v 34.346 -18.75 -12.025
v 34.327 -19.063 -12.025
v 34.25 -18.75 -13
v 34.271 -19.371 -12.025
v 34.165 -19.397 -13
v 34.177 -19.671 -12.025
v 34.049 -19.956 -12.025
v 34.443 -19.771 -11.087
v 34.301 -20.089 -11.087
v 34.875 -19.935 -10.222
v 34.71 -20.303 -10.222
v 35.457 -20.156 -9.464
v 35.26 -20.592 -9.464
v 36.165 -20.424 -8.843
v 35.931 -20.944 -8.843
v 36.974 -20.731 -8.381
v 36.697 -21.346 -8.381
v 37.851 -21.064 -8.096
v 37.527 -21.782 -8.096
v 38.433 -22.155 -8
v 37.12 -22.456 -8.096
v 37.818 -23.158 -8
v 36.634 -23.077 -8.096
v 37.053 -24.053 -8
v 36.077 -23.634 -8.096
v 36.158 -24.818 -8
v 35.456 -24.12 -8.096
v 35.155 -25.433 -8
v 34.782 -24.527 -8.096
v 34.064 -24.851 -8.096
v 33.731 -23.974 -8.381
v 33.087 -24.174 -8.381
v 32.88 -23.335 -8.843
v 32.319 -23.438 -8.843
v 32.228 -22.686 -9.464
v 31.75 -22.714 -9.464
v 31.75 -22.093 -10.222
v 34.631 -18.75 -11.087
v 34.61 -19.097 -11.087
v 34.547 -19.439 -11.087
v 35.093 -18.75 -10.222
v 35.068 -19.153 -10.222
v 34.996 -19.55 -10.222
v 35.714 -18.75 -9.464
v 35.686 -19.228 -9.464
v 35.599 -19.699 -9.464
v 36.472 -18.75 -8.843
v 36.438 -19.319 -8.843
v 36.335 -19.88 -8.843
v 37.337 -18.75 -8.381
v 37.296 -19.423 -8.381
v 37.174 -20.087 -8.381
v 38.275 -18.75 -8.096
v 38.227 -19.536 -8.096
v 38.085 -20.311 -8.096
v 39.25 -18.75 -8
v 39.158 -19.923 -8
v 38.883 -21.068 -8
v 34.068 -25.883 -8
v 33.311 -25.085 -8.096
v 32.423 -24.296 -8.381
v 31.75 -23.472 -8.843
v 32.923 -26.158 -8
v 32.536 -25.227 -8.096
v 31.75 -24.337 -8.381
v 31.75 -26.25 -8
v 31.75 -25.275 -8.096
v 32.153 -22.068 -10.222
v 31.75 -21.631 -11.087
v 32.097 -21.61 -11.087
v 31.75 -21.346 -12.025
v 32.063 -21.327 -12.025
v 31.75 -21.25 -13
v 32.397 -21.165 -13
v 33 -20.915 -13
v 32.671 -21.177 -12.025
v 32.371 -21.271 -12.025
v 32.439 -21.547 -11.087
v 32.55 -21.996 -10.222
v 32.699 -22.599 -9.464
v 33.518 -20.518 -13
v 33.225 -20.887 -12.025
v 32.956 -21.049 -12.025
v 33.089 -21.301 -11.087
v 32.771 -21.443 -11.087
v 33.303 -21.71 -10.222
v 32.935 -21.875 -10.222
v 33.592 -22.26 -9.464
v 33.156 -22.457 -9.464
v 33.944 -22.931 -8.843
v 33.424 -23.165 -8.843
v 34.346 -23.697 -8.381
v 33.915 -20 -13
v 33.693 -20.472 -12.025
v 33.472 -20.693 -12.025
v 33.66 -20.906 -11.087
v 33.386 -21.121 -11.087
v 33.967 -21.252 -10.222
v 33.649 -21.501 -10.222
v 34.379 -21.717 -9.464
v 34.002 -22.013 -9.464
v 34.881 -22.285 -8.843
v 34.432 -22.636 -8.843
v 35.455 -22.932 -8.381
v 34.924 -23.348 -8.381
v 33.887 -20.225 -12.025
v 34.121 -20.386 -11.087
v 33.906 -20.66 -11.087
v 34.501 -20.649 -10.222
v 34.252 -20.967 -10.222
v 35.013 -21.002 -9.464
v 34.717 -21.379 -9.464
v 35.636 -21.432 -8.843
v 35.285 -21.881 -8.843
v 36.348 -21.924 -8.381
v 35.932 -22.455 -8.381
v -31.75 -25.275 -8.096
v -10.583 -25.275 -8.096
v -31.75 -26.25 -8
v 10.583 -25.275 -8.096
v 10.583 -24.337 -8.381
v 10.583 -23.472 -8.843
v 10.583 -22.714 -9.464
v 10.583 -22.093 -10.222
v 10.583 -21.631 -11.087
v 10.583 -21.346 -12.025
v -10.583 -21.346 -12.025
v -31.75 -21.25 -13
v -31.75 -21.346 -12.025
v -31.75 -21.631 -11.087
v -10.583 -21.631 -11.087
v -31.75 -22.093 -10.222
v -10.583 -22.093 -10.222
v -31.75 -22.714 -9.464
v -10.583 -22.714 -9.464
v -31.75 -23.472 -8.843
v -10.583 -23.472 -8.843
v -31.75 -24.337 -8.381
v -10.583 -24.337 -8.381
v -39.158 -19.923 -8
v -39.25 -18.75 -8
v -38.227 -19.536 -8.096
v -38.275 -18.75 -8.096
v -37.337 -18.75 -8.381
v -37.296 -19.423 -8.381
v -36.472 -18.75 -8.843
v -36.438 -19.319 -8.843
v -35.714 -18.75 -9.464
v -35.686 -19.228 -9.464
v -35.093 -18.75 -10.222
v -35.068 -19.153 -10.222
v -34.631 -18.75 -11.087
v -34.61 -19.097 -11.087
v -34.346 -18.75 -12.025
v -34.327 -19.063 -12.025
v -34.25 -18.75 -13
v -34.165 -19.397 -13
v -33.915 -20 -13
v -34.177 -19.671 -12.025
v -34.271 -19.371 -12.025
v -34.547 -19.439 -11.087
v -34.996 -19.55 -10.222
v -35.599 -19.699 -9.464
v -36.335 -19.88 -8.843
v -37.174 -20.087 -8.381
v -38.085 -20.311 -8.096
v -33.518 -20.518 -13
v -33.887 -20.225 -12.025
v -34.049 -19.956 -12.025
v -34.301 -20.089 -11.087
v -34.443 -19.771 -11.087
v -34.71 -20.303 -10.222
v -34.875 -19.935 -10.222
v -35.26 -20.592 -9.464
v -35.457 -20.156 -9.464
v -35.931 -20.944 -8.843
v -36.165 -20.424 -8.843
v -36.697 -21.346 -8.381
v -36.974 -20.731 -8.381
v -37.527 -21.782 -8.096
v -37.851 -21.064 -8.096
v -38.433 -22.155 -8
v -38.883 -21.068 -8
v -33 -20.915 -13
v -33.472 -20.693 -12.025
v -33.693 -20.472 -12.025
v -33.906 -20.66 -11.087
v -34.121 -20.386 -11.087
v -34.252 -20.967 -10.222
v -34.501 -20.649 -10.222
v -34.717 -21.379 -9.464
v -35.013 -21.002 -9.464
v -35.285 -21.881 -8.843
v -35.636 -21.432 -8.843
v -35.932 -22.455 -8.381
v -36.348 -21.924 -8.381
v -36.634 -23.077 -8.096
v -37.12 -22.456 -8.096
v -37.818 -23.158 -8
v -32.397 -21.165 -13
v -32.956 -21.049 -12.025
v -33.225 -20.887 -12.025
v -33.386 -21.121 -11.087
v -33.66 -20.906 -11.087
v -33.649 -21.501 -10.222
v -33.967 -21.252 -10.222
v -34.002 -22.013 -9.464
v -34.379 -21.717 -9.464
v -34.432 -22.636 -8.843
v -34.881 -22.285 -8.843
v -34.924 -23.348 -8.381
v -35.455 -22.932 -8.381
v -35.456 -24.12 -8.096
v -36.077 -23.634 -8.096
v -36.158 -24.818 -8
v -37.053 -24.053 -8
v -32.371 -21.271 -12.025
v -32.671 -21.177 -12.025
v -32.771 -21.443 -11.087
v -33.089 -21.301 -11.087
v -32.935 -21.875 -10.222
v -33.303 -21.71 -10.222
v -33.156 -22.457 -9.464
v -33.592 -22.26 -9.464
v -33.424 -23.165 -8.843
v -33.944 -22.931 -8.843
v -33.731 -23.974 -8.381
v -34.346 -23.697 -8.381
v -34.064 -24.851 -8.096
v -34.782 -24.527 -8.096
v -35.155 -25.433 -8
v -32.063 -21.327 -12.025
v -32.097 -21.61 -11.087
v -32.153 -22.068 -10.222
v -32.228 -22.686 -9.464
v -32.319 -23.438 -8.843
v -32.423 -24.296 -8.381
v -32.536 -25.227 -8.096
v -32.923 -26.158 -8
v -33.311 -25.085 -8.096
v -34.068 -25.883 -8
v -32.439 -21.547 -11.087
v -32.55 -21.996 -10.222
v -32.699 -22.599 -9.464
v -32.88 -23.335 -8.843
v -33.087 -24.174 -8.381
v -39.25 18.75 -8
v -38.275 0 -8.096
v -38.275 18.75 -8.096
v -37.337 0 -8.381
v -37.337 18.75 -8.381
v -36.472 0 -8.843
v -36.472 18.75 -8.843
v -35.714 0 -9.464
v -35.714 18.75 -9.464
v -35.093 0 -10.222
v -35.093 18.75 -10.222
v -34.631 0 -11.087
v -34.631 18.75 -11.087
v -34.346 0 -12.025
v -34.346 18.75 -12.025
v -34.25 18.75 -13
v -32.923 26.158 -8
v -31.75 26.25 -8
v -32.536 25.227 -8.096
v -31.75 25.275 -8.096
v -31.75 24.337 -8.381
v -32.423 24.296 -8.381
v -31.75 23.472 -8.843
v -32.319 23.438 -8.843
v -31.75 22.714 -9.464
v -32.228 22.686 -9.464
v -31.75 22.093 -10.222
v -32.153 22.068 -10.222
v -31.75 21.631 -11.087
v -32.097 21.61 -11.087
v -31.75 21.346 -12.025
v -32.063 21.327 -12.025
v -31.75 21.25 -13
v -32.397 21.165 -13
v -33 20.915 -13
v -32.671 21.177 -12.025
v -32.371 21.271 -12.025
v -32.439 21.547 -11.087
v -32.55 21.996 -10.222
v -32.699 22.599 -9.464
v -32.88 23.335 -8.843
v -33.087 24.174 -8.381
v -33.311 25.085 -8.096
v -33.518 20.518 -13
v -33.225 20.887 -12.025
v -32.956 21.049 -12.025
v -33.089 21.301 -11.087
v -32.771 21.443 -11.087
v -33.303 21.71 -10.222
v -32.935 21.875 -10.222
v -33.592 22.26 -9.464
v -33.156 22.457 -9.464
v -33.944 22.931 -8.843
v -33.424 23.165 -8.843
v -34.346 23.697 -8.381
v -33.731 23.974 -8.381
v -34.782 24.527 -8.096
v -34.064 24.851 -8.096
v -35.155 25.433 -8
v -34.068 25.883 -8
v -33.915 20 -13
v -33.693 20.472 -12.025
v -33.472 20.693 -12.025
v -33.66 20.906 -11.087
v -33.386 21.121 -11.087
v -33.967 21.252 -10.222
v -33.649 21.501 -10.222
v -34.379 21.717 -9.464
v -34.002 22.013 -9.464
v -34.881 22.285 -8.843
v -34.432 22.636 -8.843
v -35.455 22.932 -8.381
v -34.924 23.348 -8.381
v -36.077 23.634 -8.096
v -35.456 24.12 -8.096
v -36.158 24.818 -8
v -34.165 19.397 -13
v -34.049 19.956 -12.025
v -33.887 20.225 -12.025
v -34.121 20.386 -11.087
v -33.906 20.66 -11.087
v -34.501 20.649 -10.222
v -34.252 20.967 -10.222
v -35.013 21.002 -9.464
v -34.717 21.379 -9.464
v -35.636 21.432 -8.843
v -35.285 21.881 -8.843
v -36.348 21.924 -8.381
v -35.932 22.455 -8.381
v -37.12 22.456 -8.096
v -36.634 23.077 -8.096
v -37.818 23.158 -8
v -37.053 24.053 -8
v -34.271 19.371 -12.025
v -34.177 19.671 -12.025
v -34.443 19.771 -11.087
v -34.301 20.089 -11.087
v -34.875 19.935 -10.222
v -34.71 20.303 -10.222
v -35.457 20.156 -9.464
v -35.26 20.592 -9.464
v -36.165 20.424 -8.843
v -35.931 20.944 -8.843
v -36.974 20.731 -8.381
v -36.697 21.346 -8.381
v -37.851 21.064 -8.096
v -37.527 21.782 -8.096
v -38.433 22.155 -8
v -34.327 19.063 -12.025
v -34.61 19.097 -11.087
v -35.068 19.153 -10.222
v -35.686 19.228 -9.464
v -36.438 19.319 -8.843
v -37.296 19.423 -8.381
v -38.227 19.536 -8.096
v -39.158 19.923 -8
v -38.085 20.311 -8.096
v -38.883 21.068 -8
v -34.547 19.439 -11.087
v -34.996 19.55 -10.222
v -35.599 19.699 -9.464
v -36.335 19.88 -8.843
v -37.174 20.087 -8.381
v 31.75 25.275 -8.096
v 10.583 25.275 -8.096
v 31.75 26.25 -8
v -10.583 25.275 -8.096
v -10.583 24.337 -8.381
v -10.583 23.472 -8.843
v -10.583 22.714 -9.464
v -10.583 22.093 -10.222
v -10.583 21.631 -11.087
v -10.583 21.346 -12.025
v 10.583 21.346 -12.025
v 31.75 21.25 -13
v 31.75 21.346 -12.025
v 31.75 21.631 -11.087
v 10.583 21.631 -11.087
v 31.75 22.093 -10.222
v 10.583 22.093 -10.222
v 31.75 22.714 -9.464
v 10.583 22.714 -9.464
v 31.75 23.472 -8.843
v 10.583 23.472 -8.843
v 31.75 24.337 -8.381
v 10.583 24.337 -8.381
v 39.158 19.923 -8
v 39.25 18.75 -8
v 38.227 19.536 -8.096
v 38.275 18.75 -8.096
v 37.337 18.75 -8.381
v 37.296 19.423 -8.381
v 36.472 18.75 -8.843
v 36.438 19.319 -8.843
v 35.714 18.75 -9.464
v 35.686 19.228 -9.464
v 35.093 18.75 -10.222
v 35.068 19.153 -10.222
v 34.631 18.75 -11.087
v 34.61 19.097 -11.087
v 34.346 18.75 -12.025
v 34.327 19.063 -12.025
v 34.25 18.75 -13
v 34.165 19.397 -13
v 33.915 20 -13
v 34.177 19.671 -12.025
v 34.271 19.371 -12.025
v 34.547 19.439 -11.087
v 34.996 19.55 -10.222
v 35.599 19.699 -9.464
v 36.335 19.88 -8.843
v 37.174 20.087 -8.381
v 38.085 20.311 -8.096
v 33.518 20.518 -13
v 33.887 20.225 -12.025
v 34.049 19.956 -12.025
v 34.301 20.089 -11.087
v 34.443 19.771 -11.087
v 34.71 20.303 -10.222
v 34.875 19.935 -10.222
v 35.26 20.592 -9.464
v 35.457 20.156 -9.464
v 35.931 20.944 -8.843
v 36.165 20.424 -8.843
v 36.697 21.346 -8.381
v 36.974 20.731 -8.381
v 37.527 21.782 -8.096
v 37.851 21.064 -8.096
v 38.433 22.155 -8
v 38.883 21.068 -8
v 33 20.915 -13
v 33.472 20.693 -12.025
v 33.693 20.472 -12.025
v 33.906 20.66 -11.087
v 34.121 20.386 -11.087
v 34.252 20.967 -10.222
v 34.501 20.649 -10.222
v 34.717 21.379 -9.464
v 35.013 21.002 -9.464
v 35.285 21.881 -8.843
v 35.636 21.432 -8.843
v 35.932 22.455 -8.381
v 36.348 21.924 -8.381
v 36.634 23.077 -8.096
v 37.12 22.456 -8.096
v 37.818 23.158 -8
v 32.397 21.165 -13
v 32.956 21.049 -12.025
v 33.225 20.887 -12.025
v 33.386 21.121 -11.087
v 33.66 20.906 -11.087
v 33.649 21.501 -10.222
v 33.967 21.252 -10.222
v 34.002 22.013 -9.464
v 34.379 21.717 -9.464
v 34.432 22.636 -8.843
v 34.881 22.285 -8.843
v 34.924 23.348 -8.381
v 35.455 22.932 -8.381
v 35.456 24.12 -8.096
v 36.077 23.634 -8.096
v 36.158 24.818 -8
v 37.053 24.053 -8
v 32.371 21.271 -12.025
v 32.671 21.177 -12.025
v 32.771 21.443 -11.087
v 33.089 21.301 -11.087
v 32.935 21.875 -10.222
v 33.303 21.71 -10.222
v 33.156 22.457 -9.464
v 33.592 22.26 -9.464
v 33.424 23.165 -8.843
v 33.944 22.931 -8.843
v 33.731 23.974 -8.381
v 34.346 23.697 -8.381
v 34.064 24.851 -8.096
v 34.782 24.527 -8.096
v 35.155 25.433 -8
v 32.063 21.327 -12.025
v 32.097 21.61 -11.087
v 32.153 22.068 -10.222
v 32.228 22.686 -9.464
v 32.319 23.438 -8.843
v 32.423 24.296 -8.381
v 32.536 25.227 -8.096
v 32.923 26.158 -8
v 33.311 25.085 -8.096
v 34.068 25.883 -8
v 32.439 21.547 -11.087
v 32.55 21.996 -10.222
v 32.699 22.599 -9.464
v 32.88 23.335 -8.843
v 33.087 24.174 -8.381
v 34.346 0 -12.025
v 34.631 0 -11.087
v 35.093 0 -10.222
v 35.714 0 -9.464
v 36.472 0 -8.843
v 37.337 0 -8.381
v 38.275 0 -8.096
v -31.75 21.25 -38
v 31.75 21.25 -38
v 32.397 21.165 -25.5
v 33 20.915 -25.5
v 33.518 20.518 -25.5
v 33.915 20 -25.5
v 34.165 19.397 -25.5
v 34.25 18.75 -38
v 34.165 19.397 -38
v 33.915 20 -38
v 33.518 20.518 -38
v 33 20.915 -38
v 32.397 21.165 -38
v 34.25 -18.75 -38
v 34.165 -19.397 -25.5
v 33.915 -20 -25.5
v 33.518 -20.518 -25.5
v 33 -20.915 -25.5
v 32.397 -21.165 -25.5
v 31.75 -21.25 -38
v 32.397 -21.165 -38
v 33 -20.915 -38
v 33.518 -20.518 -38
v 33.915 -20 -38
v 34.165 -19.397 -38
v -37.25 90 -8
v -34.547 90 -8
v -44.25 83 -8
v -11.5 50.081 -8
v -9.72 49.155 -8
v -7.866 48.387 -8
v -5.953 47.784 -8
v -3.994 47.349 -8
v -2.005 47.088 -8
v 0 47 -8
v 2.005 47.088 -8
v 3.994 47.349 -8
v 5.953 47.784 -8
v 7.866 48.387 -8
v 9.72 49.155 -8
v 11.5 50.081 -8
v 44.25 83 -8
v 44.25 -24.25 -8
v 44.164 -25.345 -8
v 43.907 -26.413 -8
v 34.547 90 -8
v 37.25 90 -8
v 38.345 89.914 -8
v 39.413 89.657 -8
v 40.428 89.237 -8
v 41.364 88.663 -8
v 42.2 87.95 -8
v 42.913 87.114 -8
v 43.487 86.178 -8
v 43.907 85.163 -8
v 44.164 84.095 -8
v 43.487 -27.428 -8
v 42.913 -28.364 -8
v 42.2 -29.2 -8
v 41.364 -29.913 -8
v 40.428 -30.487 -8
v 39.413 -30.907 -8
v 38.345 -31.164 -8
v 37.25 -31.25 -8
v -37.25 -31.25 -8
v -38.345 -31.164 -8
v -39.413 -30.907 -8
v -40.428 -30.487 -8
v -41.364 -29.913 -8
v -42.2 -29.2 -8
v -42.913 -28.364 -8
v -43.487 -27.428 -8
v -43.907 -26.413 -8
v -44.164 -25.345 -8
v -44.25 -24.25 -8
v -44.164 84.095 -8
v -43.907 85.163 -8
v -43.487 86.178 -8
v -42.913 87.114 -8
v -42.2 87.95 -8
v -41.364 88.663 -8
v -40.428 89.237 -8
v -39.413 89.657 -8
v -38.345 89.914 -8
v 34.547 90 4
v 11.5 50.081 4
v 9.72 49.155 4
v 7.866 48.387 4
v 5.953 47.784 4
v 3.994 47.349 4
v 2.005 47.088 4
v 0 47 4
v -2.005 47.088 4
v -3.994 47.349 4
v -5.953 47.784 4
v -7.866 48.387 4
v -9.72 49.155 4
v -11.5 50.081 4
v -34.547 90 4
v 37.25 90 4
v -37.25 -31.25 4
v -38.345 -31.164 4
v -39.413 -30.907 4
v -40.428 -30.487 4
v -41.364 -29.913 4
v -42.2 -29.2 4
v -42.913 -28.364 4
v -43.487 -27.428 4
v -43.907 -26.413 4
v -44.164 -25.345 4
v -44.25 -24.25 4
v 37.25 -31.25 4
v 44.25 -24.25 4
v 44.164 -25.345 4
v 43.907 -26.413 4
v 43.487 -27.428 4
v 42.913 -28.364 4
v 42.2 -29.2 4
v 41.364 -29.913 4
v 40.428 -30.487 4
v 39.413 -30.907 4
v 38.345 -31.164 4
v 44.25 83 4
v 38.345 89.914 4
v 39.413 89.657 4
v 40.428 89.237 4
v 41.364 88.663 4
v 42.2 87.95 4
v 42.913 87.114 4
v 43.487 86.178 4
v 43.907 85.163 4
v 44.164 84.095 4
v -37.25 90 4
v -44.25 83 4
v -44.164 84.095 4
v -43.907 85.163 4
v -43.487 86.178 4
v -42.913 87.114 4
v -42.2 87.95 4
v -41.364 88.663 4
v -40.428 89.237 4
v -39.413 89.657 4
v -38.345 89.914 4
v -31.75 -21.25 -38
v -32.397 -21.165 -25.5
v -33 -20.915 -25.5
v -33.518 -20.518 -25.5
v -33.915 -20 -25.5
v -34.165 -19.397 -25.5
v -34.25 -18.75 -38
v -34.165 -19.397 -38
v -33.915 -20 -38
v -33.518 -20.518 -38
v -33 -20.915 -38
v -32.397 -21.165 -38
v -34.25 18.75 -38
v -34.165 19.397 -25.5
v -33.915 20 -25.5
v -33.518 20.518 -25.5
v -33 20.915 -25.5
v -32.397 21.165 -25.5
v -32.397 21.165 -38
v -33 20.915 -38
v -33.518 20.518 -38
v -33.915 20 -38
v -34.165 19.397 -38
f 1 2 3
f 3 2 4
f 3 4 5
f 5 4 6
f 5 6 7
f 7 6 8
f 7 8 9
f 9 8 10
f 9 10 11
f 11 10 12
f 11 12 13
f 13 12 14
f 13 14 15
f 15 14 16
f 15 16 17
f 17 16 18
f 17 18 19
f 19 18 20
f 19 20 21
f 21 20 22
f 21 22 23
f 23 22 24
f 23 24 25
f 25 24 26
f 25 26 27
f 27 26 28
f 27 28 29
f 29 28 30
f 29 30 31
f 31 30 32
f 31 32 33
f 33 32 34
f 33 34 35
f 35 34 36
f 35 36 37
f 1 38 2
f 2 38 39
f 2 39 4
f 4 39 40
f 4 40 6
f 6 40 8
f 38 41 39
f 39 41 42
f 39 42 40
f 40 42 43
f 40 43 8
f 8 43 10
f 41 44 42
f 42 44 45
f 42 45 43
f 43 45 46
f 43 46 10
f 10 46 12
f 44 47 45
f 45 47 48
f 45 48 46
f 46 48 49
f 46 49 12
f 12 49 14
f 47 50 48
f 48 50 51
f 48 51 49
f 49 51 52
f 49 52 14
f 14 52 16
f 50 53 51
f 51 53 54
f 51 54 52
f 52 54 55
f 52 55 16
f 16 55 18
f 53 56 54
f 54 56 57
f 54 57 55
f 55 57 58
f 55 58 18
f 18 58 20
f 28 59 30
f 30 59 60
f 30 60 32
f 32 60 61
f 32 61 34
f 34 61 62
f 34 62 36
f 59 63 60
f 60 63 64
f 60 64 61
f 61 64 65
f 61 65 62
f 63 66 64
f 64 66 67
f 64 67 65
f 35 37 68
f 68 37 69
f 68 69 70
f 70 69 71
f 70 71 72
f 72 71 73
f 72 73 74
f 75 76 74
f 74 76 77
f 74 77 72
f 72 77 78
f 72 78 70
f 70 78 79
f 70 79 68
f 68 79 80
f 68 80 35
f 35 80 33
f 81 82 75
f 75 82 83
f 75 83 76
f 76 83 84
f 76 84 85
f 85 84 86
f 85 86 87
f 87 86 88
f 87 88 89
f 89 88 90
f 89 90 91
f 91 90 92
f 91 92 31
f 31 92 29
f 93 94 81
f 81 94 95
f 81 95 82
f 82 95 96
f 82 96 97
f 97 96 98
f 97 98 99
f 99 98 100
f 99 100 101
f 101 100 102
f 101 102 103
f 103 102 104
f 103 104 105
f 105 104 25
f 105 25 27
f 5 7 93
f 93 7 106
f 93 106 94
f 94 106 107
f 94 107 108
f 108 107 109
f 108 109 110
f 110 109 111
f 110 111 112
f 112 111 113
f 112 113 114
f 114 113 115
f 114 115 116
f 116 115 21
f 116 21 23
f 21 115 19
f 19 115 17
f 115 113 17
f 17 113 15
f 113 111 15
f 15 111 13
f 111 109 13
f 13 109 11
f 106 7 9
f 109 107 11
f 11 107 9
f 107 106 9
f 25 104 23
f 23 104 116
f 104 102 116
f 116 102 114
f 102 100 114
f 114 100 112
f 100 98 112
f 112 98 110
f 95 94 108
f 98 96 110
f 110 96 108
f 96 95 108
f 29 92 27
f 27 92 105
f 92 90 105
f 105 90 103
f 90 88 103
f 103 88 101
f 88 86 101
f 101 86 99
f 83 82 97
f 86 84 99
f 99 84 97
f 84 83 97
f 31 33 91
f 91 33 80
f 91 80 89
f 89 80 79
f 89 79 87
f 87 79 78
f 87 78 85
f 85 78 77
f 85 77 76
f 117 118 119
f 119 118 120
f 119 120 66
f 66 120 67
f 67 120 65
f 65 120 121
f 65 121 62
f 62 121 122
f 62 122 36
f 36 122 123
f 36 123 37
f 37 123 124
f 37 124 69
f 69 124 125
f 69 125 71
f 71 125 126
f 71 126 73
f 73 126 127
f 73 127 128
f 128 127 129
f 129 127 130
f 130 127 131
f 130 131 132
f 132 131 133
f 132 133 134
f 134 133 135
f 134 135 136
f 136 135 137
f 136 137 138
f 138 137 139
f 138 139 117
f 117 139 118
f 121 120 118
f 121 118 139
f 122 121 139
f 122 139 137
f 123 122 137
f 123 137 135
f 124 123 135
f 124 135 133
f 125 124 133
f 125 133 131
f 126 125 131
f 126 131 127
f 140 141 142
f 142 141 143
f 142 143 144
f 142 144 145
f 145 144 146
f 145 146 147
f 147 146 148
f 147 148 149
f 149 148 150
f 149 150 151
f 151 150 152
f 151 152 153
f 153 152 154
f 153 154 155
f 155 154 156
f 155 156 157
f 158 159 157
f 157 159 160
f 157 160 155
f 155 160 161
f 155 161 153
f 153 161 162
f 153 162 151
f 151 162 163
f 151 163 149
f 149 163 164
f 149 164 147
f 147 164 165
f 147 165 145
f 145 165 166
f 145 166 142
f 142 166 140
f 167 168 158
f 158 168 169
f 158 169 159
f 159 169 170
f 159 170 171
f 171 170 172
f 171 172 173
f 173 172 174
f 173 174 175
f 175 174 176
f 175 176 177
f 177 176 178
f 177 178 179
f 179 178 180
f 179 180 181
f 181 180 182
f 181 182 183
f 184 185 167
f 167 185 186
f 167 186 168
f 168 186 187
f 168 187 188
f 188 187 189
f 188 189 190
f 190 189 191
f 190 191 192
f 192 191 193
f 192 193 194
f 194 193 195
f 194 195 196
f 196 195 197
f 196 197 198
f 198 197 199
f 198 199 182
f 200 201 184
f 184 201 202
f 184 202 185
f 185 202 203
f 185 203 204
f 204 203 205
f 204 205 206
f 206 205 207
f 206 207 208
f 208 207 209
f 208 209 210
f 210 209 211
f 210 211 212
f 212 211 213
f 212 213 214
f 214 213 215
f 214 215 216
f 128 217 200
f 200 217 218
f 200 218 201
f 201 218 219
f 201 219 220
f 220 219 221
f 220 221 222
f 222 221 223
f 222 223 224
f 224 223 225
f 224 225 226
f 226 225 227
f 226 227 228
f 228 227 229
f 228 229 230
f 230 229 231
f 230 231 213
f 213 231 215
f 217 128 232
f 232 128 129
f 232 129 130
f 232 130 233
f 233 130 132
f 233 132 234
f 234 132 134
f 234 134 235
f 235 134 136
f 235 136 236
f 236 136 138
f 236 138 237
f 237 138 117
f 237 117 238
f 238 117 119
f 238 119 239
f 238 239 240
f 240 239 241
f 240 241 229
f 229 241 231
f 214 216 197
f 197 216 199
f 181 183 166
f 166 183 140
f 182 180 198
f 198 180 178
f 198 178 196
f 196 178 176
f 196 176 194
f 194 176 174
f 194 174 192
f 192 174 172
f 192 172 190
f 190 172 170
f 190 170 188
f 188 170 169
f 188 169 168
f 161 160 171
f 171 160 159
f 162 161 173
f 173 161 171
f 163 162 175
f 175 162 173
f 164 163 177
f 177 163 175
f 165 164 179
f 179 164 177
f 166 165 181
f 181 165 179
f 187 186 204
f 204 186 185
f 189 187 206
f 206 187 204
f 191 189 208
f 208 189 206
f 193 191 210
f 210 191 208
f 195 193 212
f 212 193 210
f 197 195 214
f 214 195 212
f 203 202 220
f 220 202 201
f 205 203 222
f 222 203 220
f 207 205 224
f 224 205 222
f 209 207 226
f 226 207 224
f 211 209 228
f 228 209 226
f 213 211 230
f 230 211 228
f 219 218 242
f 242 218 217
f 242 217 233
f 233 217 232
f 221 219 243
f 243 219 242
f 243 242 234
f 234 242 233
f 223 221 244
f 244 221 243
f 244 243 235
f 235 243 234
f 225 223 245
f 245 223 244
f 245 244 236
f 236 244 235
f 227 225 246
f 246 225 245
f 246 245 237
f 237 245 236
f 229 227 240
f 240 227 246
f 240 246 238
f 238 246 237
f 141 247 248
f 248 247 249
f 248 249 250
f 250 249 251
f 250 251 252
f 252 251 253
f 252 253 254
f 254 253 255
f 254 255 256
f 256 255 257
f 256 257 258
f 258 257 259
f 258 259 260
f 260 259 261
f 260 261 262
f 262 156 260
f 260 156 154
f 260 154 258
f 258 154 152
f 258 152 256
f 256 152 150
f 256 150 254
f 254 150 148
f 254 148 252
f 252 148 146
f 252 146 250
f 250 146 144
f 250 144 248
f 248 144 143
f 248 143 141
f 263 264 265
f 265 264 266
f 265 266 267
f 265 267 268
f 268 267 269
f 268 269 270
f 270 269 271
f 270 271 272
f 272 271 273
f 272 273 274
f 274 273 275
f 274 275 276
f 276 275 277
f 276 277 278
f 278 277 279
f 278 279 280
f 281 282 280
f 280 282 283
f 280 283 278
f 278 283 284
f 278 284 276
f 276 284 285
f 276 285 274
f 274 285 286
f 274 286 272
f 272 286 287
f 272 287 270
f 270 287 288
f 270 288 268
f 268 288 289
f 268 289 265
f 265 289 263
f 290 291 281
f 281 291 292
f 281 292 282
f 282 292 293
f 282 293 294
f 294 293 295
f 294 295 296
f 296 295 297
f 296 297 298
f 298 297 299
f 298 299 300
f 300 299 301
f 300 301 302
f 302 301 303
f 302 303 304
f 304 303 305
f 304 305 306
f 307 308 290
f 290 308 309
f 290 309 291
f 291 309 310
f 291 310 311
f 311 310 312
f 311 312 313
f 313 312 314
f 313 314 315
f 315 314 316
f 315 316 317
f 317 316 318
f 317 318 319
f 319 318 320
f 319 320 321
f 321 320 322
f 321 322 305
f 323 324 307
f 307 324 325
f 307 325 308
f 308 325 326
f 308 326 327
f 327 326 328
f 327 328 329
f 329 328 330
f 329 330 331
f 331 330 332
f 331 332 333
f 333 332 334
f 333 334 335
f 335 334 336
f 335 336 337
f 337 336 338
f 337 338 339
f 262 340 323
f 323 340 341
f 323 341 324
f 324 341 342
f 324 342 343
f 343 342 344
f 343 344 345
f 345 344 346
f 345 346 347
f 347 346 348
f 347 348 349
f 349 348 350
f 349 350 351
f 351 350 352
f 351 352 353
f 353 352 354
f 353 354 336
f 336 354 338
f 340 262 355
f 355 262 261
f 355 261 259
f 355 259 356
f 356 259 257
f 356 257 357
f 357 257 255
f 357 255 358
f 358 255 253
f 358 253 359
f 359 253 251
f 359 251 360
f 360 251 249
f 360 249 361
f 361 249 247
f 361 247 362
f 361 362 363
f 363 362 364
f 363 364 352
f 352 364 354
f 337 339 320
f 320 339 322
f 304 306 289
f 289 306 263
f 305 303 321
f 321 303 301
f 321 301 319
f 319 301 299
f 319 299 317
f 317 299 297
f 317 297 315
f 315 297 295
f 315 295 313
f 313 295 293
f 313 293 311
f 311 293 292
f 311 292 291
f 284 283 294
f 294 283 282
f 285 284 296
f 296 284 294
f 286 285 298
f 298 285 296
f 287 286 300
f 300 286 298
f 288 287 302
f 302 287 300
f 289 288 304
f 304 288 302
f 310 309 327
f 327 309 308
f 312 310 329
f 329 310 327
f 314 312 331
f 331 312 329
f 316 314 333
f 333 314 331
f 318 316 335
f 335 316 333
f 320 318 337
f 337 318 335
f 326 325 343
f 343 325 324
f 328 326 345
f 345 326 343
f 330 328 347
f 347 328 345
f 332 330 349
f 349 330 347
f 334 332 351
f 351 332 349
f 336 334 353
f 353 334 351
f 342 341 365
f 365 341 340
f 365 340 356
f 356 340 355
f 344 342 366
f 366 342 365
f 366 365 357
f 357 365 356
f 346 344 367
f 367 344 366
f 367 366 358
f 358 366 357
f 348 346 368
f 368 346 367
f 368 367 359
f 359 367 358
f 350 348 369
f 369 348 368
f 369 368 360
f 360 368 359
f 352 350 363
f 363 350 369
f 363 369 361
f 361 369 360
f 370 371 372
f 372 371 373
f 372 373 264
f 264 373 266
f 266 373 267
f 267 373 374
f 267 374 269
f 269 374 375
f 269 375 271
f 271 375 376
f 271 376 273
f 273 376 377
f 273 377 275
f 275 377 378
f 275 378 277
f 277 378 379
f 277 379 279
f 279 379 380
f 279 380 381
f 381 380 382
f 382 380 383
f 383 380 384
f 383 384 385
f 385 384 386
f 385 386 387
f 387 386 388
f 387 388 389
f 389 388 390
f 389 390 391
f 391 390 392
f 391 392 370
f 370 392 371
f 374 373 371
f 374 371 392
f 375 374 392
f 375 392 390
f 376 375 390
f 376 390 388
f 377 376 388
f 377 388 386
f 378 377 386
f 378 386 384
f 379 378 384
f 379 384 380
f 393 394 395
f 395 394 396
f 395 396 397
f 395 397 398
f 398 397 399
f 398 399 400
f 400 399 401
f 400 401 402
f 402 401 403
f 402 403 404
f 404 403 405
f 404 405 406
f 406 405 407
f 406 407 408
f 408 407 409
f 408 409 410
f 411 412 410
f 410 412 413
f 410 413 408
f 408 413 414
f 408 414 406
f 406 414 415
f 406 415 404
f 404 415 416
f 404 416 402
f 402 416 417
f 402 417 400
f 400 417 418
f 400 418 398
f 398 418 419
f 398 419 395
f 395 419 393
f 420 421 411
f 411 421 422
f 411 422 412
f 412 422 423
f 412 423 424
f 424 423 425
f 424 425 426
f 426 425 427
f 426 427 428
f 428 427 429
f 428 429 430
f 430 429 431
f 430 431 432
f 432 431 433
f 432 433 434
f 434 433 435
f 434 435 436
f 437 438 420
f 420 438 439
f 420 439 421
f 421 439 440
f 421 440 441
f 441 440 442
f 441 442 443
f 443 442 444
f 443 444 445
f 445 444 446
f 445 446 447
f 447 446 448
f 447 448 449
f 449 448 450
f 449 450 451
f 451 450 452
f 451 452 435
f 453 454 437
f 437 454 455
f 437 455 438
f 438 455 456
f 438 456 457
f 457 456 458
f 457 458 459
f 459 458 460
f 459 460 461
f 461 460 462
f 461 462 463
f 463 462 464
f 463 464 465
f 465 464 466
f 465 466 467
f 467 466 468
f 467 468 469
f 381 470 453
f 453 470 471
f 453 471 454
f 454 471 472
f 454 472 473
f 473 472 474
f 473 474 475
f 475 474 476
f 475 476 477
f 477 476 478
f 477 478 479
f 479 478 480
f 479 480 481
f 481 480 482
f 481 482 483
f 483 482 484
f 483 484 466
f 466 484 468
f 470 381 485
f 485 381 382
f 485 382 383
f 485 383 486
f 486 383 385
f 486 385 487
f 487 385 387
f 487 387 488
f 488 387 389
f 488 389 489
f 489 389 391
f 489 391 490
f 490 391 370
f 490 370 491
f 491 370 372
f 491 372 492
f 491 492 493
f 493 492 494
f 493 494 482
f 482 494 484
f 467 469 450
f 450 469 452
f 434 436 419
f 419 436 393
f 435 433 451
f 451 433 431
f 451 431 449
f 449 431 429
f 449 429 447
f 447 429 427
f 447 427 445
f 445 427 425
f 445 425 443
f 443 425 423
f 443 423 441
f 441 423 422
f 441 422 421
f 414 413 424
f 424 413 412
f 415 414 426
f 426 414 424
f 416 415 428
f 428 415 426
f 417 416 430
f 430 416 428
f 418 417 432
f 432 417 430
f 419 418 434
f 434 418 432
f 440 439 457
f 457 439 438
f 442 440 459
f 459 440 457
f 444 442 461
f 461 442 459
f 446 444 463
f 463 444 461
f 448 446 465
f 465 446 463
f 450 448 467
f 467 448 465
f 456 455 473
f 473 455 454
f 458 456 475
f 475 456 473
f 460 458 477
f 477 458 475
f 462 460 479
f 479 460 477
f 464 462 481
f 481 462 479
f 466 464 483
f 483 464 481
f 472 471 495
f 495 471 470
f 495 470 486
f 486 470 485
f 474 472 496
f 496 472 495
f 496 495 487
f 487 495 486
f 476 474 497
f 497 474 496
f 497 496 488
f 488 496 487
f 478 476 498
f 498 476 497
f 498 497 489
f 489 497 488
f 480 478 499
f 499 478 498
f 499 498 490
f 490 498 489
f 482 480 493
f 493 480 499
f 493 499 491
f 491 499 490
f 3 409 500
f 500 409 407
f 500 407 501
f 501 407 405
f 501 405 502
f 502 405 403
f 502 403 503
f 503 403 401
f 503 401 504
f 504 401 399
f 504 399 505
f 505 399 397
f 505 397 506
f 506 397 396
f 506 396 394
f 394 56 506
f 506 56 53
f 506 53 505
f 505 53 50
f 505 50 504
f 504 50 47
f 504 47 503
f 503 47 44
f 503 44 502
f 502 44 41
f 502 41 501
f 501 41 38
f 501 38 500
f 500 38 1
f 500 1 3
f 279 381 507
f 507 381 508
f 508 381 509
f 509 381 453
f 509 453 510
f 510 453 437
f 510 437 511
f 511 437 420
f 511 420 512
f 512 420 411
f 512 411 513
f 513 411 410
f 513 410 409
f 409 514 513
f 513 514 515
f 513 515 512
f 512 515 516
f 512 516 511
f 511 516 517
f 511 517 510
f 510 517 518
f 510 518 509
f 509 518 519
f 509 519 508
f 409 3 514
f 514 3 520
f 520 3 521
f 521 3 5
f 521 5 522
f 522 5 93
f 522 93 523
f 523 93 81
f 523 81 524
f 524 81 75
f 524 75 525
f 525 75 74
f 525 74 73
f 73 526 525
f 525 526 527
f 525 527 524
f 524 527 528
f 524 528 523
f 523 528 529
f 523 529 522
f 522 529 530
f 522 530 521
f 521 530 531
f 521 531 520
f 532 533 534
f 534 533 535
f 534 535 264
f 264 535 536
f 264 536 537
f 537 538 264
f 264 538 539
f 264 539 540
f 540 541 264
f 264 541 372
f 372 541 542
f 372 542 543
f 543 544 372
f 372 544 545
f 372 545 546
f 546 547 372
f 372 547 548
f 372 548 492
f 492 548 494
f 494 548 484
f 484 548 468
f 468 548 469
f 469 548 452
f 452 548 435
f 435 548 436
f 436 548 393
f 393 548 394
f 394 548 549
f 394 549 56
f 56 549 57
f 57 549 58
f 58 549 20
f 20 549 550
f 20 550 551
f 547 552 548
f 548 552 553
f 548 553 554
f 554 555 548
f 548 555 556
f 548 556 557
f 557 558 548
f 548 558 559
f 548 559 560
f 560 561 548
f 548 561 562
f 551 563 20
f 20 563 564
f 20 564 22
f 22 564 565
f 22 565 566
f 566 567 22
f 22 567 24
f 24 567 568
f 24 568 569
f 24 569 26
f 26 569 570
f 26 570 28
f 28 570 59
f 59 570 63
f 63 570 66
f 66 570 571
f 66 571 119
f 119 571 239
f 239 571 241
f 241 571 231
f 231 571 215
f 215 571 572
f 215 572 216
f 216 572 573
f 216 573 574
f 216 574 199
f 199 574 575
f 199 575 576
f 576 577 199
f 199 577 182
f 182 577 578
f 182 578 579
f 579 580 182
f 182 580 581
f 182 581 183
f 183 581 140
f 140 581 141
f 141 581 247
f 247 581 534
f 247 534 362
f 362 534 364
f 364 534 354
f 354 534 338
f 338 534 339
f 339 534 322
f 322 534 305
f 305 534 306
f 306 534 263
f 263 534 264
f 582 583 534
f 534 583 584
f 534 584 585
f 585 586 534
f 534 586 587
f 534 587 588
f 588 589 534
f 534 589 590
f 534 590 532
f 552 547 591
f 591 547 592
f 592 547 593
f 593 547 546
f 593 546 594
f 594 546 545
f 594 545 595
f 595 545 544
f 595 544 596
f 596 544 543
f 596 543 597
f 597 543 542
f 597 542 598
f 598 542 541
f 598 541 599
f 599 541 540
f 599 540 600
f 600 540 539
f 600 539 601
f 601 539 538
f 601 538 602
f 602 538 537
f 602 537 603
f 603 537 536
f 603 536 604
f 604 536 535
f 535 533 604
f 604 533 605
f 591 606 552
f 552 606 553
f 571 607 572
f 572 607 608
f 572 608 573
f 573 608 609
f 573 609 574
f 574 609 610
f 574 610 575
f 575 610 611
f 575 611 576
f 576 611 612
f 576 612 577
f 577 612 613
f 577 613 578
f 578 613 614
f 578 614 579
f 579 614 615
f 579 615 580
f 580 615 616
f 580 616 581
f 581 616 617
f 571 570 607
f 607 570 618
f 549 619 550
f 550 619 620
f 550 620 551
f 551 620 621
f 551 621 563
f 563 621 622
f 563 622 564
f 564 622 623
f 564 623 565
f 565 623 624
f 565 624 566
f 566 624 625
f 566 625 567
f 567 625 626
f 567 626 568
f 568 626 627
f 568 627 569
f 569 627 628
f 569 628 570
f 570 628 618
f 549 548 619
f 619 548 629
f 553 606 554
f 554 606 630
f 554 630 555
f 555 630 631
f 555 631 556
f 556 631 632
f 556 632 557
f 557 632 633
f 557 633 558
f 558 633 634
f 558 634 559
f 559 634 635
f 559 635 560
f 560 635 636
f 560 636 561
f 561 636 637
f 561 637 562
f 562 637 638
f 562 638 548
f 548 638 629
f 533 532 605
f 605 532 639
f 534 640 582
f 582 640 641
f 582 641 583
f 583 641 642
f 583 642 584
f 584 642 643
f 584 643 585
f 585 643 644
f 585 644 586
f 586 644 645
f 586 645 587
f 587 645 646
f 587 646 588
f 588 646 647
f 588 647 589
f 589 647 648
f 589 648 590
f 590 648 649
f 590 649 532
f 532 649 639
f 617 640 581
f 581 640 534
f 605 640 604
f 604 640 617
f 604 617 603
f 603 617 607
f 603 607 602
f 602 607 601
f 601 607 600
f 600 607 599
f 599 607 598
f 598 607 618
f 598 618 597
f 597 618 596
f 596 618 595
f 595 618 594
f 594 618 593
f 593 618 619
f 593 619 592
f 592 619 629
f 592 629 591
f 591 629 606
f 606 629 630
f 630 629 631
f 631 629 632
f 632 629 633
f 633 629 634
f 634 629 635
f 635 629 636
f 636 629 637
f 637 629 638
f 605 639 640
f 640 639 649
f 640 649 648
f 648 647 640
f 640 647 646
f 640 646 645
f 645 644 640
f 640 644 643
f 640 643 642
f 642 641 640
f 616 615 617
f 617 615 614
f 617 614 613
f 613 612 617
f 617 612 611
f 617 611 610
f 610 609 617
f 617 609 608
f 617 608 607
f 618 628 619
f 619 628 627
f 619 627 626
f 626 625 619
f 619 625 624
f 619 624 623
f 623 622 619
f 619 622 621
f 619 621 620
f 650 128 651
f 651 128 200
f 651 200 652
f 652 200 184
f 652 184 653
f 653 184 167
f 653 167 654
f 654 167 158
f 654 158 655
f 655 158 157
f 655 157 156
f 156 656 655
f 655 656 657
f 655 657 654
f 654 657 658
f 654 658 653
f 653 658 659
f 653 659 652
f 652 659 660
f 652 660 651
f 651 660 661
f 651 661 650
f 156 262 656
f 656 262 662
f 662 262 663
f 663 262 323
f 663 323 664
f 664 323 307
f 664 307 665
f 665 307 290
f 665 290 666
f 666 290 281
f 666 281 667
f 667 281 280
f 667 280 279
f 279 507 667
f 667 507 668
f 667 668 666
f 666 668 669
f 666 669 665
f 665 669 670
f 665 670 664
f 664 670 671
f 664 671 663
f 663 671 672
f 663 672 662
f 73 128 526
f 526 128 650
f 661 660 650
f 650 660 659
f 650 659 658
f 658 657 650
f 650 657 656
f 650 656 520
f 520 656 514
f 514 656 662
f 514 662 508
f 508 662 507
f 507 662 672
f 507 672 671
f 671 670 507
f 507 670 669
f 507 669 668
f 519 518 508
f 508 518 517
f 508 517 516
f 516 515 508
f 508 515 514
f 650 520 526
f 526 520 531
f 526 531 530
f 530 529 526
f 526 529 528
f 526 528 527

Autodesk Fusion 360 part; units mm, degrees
ref_plane "WorkPlane3" through (0, 0, -38) normal (0, 0, 1) x (1, 0, 0)
sketch "Sketch6" plane through (0, 0, -38) normal (0, 0, 1) x (1, 0, 0)
  line L0 (-34.25, -21.25) -> (34.25, -21.25)
  line L1 (34.25, -21.25) -> (34.25, 21.25)
  line L2 (34.25, 21.25) -> (-34.25, 21.25)
  line L3 (-34.25, 21.25) -> (-34.25, -21.25)
extrude "Extrude6" add sketch "Sketch6" along normal blind 30
fillet "Fillet7" radius 2.5 4 edges at (-34.25, 21.25, -23) (34.25, 21.25, -23) (34.25, -21.25, -23) (-34.25, -21.25, -23)
ref_plane "WorkPlane4" through (0, 0, -8) normal (0, 0, 1) x (1, 0, 0)
sketch "Sketch7" plane through (0, 0, -8) normal (0, 0, 1) x (1, 0, 0)
  line L0 (-44.25, -31.25) -> (44.25, -31.25)
  line L1 (44.25, -31.25) -> (44.25, 90)
  line L2 (44.25, 90) -> (-44.25, 90)
  line L3 (-44.25, 90) -> (-44.25, -31.25)
extrude "Extrude7" add sketch "Sketch7" along normal blind 12
fillet "Fillet8" radius 7 4 edges at (-44.25, 90, -2) (44.25, 90, -2) (44.25, -31.25, -2) (-44.25, -31.25, -2)
sketch "Sketch8" plane through (0, 0, -8) normal (0, 0, 1) x (1, 0, 0)
  line L0 (-34.547, 90) -> (-11.5, 50.0814)
  arc A0 (-11.5, 50.0814) -> (11.5, 50.0814) centre (0, 70) ccw
  line L1 (11.5, 50.0814) -> (34.547, 90)
  line L2 (34.547, 90) -> (34.547, 95)
  line L3 (34.547, 95) -> (-34.547, 95)
  line L4 (-34.547, 95) -> (-34.547, 90)
extrude "Extrude8" cut sketch "Sketch8" along normal blind 12
fillet "Fillet9" radius 5 64 edges at (33.5178, -20.5178, -8) (0, -21.25, -8) (-33.5178, -20.5178, -8) (-34.25, 0, -8) (-33.5178, 20.5178, -8) (0, 21.25, -8) (33.5178, 20.5178, -8) (34.25, 0, -8) (34.25, 0, -8) (33.5178, 20.5178, -8) (0, 21.25, -8) (-33.5178, 20.5178, -8) (-34.25, 0, -8) (-33.5178, -20.5178, -8) (0, -21.25, -8) (33.5178, -20.5178, -8) (33.5178, 20.5178, -8) (34.25, 0, -8) (33.5178, -20.5178, -8) (0, -21.25, -8) (-33.5178, -20.5178, -8) (-34.25, 0, -8) (-33.5178, 20.5178, -8) (0, 21.25, -8) (0, 21.25, -8) (-33.5178, 20.5178, -8) (-34.25, 0, -8) (-33.5178, -20.5178, -8) (0, -21.25, -8) (33.5178, -20.5178, -8) (34.25, 0, -8) (33.5178, 20.5178, -8) (-33.5178, 20.5178, -8) (0, 21.25, -8) (33.5178, 20.5178, -8) (34.25, 0, -8) (33.5178, -20.5178, -8) (0, -21.25, -8) (-33.5178, -20.5178, -8) (-34.25, 0, -8) (-34.25, 0, -8) (-33.5178, -20.5178, -8) (0, -21.25, -8) (33.5178, -20.5178, -8) (34.25, 0, -8) (33.5178, 20.5178, -8) (0, 21.25, -8) (-33.5178, 20.5178, -8) (-33.5178, -20.5178, -8) (-34.25, 0, -8) (-33.5178, 20.5178, -8) (0, 21.25, -8) (33.5178, 20.5178, -8) (34.25, 0, -8) (33.5178, -20.5178, -8) (0, -21.25, -8) (0, -21.25, -8) (33.5178, -20.5178, -8) (34.25, 0, -8) (33.5178, 20.5178, -8) (0, 21.25, -8) (-33.5178, 20.5178, -8) (-34.25, 0, -8) (-33.5178, -20.5178, -8)
